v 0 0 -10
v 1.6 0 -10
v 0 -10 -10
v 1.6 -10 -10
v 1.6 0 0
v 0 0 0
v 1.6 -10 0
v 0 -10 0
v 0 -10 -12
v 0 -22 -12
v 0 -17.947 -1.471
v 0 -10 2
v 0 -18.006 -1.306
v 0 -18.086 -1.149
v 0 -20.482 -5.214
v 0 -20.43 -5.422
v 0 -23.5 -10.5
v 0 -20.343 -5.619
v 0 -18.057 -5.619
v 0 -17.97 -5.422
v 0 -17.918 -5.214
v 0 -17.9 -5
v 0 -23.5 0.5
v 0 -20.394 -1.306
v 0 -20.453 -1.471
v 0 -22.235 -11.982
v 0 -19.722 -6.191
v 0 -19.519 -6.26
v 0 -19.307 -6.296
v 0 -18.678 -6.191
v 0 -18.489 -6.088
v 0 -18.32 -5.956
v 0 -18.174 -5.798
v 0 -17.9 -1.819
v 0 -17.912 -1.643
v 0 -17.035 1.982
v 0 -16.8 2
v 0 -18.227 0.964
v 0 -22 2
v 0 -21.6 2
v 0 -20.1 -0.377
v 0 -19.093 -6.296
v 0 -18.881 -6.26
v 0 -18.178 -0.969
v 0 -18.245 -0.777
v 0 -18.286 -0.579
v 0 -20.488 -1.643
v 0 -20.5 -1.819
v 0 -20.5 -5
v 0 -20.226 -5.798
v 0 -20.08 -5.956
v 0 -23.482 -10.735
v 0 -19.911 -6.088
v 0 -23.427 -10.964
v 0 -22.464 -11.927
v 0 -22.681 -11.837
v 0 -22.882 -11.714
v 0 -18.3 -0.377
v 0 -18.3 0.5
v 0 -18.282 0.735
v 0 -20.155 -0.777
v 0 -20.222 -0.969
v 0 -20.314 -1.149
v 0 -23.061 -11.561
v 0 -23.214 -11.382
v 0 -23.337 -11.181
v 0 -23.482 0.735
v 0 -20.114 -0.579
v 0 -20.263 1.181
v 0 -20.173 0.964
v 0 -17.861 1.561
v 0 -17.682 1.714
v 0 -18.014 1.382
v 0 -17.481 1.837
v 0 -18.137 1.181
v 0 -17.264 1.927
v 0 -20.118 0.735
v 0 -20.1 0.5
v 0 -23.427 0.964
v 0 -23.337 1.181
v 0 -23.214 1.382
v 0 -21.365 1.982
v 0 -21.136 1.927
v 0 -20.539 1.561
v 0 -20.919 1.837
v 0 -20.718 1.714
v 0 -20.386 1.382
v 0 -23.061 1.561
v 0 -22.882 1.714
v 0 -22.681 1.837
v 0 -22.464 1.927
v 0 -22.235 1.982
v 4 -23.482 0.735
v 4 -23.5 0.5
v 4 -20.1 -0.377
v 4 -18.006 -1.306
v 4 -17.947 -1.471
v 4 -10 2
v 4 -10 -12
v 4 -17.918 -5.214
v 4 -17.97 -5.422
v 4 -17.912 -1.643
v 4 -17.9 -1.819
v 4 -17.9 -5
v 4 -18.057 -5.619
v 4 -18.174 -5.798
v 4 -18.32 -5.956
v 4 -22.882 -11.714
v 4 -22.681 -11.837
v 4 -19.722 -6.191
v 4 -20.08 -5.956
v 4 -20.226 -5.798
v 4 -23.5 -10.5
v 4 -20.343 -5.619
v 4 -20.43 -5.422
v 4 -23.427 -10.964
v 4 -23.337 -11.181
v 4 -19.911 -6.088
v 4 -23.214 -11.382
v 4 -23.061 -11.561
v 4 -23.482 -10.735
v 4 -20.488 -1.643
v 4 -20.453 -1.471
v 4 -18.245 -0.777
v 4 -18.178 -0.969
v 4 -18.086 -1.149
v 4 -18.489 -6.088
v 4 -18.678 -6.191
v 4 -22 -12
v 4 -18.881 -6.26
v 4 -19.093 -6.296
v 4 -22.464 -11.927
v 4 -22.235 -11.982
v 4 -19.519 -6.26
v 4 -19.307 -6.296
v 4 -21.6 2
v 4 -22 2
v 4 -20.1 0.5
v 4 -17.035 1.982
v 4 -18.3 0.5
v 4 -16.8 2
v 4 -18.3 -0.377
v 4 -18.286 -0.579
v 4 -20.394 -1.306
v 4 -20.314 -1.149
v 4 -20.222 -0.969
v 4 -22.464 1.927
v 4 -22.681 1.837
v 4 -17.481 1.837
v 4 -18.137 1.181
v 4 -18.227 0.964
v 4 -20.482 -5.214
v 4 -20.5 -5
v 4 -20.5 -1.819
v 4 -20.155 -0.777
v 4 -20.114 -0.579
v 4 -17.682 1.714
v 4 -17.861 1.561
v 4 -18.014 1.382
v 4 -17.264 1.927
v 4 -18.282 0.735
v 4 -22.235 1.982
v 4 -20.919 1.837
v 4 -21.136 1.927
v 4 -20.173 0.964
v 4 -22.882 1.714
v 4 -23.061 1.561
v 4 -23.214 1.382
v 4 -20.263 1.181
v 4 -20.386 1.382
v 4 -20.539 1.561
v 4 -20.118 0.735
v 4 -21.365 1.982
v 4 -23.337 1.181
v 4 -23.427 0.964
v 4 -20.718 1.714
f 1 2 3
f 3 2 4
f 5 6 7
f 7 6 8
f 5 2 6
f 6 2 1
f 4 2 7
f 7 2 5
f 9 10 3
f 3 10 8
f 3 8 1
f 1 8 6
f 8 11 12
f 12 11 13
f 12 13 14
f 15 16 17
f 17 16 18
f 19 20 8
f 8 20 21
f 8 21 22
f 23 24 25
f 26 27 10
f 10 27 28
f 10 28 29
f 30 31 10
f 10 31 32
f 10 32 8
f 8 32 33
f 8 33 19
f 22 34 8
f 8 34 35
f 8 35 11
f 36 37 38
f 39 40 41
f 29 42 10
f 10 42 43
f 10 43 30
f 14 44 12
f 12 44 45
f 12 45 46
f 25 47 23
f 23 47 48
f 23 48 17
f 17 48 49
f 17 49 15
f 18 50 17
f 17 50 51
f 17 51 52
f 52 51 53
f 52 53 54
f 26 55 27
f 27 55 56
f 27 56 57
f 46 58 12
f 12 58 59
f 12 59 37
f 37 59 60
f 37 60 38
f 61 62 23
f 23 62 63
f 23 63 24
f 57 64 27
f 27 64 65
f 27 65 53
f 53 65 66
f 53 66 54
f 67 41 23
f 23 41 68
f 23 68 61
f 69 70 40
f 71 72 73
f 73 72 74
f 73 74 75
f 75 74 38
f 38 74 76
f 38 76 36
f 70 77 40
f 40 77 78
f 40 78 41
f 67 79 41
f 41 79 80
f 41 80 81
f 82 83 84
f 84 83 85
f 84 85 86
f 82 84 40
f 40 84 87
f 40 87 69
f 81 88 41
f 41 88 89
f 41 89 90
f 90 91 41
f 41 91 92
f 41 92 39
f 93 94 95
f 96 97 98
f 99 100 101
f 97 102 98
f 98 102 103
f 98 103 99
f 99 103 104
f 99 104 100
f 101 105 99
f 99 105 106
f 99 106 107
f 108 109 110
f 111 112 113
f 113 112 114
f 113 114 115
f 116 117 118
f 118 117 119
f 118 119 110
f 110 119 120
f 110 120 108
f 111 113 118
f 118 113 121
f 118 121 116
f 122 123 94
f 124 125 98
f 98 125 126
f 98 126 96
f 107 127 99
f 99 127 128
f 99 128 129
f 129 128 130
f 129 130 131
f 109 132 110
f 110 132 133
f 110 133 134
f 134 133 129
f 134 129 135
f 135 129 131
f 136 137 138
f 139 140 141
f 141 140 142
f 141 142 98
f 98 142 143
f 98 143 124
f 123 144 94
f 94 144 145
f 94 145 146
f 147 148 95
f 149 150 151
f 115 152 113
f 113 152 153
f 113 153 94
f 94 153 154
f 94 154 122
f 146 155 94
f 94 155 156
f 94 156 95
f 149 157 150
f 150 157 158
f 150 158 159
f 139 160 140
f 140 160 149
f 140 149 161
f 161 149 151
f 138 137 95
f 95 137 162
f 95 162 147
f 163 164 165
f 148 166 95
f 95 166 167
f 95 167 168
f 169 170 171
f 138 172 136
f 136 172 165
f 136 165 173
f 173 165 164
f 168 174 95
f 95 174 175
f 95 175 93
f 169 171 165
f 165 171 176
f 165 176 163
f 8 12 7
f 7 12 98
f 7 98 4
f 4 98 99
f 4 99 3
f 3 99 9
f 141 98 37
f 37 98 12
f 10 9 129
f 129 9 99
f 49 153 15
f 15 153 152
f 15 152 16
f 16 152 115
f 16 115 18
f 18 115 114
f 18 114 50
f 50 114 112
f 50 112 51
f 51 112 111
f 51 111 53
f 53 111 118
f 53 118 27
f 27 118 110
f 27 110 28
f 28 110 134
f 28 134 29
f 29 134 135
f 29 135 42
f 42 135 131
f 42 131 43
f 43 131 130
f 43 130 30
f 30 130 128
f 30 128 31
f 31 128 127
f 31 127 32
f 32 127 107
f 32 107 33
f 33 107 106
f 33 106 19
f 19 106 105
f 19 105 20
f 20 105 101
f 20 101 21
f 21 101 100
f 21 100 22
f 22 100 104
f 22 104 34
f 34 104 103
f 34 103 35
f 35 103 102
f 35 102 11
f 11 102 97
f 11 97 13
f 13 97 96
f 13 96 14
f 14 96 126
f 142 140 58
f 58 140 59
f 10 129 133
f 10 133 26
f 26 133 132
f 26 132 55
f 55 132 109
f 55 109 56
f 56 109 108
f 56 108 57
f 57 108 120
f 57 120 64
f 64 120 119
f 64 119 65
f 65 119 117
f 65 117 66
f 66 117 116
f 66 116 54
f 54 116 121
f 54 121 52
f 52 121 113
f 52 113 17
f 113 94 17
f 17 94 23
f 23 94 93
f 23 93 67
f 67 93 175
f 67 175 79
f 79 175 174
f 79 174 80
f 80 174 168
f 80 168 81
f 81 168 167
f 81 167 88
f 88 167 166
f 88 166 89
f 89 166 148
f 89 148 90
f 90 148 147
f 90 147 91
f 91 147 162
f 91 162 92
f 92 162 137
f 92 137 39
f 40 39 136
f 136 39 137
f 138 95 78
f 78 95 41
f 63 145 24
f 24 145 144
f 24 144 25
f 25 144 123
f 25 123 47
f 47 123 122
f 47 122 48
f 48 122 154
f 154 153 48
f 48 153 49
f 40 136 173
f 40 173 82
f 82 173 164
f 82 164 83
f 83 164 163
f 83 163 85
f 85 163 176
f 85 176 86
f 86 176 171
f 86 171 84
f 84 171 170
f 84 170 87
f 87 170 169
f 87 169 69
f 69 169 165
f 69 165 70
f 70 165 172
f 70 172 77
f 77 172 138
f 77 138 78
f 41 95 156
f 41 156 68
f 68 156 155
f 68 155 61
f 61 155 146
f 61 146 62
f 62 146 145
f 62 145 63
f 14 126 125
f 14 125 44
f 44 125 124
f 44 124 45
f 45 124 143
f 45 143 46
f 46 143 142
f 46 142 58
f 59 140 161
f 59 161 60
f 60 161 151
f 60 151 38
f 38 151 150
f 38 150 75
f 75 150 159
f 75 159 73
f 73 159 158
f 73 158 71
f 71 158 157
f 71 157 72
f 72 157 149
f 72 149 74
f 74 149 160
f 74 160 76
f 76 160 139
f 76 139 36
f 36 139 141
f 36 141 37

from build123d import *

# Parameters (mm, degrees)
SKETCH1_W           = 10
SKETCH1_H           = 10
BOSS_EXTRUDE1_DEPTH = 1.6
BOSS_EXTRUDE2_DEPTH = 10
SKETCH3_W           = 4
SKETCH3_H           = 2
BOSS_EXTRUDE3_DEPTH = 2
SKETCH4_W           = 4
SKETCH4_H           = 2
BOSS_EXTRUDE4_DEPTH = 2
BOSS_EXTRUDE5_DEPTH = 4
FILLET1_R           = 1.5


with BuildPart() as part:
    # Sketch1 → Boss-Extrude1 (new body)
    with BuildSketch(Plane(origin=(0, 0, 0), x_dir=(0, 0, -1), z_dir=(1, 0, 0))):
        with Locations((5, -5)):
            Rectangle(SKETCH1_W, SKETCH1_H)
    extrude(amount=BOSS_EXTRUDE1_DEPTH)

    # Sketch2 → Boss-Extrude2 (add)
    with BuildSketch(Plane.XY):
        Polygon((1.2, -12), (0, -12), (0, -10), (1.6, -10), (4, -10), (4, -12), (2.8, -12), align=None)
    extrude(amount=-BOSS_EXTRUDE2_DEPTH)

    # Sketch3 → Boss-Extrude3 (add)
    with BuildSketch(Plane.XY):
        with Locations((2, -11)):
            Rectangle(SKETCH3_W, SKETCH3_H)
    extrude(amount=BOSS_EXTRUDE3_DEPTH)

    # Sketch4 → Boss-Extrude4 (add)
    with BuildSketch(Plane(origin=(0, 0, -10), x_dir=(-1, 0, 0), z_dir=(0, 0, -1))):
        with Locations((-2, -11)):
            Rectangle(SKETCH4_W, SKETCH4_H)
    extrude(amount=BOSS_EXTRUDE4_DEPTH)

    # Sketch5 → Boss-Extrude5 (add)
    with BuildSketch(Plane(origin=(4, 0, 0), x_dir=(0, 0, -1), z_dir=(1, 0, 0))):
        with BuildLine():
            Line((12, -12), (-2, -12))
            Line((-2, -12), (-2, -16.665516671))
            Line((-2, -16.665516671), (-2, -18.3))
            Line((-2, -18.3), (0.880666042, -18.3))
            ThreePointArc((0.880666042, -18.3), (1.308847242, -18.004173926), (1.818749194, -17.9))
            Line((1.818749194, -17.9), (5, -17.9))
            ThreePointArc((5, -17.9), (5.919238816, -18.280761184), (6.3, -19.2))
            ThreePointArc((6.3, -19.2), (5.919238816, -20.119238816), (5, -20.5))
            Line((5, -20.5), (1.818749194, -20.5))
            ThreePointArc((1.818749194, -20.5), (1.308847242, -20.395826074), (0.880666042, -20.1))
            Line((0.880666042, -20.1), (-2, -20.1))
            Line((-2, -20.1), (-2, -22))
            ThreePointArc((-2, -22), (-1.560660172, -23.060660172), (-0.5, -23.5))
            Line((-0.5, -23.5), (10.5, -23.5))
            ThreePointArc((10.5, -23.5), (11.560660172, -23.060660172), (12, -22))
            Line((12, -22), (12, -12))
        make_face()
    extrude(amount=-BOSS_EXTRUDE5_DEPTH)

    # Fillet1
    fillet1_edges = [part.edges().sort_by_distance(p)[0] for p in [
        (2, -18.3, -0.880666042),
        (2, -18.3, 2),
        (2, -20.1, 2),
        (2, -20.1, -0.880666042),
    ]]
    fillet(fillet1_edges, radius=FILLET1_R)


solid = part.part
